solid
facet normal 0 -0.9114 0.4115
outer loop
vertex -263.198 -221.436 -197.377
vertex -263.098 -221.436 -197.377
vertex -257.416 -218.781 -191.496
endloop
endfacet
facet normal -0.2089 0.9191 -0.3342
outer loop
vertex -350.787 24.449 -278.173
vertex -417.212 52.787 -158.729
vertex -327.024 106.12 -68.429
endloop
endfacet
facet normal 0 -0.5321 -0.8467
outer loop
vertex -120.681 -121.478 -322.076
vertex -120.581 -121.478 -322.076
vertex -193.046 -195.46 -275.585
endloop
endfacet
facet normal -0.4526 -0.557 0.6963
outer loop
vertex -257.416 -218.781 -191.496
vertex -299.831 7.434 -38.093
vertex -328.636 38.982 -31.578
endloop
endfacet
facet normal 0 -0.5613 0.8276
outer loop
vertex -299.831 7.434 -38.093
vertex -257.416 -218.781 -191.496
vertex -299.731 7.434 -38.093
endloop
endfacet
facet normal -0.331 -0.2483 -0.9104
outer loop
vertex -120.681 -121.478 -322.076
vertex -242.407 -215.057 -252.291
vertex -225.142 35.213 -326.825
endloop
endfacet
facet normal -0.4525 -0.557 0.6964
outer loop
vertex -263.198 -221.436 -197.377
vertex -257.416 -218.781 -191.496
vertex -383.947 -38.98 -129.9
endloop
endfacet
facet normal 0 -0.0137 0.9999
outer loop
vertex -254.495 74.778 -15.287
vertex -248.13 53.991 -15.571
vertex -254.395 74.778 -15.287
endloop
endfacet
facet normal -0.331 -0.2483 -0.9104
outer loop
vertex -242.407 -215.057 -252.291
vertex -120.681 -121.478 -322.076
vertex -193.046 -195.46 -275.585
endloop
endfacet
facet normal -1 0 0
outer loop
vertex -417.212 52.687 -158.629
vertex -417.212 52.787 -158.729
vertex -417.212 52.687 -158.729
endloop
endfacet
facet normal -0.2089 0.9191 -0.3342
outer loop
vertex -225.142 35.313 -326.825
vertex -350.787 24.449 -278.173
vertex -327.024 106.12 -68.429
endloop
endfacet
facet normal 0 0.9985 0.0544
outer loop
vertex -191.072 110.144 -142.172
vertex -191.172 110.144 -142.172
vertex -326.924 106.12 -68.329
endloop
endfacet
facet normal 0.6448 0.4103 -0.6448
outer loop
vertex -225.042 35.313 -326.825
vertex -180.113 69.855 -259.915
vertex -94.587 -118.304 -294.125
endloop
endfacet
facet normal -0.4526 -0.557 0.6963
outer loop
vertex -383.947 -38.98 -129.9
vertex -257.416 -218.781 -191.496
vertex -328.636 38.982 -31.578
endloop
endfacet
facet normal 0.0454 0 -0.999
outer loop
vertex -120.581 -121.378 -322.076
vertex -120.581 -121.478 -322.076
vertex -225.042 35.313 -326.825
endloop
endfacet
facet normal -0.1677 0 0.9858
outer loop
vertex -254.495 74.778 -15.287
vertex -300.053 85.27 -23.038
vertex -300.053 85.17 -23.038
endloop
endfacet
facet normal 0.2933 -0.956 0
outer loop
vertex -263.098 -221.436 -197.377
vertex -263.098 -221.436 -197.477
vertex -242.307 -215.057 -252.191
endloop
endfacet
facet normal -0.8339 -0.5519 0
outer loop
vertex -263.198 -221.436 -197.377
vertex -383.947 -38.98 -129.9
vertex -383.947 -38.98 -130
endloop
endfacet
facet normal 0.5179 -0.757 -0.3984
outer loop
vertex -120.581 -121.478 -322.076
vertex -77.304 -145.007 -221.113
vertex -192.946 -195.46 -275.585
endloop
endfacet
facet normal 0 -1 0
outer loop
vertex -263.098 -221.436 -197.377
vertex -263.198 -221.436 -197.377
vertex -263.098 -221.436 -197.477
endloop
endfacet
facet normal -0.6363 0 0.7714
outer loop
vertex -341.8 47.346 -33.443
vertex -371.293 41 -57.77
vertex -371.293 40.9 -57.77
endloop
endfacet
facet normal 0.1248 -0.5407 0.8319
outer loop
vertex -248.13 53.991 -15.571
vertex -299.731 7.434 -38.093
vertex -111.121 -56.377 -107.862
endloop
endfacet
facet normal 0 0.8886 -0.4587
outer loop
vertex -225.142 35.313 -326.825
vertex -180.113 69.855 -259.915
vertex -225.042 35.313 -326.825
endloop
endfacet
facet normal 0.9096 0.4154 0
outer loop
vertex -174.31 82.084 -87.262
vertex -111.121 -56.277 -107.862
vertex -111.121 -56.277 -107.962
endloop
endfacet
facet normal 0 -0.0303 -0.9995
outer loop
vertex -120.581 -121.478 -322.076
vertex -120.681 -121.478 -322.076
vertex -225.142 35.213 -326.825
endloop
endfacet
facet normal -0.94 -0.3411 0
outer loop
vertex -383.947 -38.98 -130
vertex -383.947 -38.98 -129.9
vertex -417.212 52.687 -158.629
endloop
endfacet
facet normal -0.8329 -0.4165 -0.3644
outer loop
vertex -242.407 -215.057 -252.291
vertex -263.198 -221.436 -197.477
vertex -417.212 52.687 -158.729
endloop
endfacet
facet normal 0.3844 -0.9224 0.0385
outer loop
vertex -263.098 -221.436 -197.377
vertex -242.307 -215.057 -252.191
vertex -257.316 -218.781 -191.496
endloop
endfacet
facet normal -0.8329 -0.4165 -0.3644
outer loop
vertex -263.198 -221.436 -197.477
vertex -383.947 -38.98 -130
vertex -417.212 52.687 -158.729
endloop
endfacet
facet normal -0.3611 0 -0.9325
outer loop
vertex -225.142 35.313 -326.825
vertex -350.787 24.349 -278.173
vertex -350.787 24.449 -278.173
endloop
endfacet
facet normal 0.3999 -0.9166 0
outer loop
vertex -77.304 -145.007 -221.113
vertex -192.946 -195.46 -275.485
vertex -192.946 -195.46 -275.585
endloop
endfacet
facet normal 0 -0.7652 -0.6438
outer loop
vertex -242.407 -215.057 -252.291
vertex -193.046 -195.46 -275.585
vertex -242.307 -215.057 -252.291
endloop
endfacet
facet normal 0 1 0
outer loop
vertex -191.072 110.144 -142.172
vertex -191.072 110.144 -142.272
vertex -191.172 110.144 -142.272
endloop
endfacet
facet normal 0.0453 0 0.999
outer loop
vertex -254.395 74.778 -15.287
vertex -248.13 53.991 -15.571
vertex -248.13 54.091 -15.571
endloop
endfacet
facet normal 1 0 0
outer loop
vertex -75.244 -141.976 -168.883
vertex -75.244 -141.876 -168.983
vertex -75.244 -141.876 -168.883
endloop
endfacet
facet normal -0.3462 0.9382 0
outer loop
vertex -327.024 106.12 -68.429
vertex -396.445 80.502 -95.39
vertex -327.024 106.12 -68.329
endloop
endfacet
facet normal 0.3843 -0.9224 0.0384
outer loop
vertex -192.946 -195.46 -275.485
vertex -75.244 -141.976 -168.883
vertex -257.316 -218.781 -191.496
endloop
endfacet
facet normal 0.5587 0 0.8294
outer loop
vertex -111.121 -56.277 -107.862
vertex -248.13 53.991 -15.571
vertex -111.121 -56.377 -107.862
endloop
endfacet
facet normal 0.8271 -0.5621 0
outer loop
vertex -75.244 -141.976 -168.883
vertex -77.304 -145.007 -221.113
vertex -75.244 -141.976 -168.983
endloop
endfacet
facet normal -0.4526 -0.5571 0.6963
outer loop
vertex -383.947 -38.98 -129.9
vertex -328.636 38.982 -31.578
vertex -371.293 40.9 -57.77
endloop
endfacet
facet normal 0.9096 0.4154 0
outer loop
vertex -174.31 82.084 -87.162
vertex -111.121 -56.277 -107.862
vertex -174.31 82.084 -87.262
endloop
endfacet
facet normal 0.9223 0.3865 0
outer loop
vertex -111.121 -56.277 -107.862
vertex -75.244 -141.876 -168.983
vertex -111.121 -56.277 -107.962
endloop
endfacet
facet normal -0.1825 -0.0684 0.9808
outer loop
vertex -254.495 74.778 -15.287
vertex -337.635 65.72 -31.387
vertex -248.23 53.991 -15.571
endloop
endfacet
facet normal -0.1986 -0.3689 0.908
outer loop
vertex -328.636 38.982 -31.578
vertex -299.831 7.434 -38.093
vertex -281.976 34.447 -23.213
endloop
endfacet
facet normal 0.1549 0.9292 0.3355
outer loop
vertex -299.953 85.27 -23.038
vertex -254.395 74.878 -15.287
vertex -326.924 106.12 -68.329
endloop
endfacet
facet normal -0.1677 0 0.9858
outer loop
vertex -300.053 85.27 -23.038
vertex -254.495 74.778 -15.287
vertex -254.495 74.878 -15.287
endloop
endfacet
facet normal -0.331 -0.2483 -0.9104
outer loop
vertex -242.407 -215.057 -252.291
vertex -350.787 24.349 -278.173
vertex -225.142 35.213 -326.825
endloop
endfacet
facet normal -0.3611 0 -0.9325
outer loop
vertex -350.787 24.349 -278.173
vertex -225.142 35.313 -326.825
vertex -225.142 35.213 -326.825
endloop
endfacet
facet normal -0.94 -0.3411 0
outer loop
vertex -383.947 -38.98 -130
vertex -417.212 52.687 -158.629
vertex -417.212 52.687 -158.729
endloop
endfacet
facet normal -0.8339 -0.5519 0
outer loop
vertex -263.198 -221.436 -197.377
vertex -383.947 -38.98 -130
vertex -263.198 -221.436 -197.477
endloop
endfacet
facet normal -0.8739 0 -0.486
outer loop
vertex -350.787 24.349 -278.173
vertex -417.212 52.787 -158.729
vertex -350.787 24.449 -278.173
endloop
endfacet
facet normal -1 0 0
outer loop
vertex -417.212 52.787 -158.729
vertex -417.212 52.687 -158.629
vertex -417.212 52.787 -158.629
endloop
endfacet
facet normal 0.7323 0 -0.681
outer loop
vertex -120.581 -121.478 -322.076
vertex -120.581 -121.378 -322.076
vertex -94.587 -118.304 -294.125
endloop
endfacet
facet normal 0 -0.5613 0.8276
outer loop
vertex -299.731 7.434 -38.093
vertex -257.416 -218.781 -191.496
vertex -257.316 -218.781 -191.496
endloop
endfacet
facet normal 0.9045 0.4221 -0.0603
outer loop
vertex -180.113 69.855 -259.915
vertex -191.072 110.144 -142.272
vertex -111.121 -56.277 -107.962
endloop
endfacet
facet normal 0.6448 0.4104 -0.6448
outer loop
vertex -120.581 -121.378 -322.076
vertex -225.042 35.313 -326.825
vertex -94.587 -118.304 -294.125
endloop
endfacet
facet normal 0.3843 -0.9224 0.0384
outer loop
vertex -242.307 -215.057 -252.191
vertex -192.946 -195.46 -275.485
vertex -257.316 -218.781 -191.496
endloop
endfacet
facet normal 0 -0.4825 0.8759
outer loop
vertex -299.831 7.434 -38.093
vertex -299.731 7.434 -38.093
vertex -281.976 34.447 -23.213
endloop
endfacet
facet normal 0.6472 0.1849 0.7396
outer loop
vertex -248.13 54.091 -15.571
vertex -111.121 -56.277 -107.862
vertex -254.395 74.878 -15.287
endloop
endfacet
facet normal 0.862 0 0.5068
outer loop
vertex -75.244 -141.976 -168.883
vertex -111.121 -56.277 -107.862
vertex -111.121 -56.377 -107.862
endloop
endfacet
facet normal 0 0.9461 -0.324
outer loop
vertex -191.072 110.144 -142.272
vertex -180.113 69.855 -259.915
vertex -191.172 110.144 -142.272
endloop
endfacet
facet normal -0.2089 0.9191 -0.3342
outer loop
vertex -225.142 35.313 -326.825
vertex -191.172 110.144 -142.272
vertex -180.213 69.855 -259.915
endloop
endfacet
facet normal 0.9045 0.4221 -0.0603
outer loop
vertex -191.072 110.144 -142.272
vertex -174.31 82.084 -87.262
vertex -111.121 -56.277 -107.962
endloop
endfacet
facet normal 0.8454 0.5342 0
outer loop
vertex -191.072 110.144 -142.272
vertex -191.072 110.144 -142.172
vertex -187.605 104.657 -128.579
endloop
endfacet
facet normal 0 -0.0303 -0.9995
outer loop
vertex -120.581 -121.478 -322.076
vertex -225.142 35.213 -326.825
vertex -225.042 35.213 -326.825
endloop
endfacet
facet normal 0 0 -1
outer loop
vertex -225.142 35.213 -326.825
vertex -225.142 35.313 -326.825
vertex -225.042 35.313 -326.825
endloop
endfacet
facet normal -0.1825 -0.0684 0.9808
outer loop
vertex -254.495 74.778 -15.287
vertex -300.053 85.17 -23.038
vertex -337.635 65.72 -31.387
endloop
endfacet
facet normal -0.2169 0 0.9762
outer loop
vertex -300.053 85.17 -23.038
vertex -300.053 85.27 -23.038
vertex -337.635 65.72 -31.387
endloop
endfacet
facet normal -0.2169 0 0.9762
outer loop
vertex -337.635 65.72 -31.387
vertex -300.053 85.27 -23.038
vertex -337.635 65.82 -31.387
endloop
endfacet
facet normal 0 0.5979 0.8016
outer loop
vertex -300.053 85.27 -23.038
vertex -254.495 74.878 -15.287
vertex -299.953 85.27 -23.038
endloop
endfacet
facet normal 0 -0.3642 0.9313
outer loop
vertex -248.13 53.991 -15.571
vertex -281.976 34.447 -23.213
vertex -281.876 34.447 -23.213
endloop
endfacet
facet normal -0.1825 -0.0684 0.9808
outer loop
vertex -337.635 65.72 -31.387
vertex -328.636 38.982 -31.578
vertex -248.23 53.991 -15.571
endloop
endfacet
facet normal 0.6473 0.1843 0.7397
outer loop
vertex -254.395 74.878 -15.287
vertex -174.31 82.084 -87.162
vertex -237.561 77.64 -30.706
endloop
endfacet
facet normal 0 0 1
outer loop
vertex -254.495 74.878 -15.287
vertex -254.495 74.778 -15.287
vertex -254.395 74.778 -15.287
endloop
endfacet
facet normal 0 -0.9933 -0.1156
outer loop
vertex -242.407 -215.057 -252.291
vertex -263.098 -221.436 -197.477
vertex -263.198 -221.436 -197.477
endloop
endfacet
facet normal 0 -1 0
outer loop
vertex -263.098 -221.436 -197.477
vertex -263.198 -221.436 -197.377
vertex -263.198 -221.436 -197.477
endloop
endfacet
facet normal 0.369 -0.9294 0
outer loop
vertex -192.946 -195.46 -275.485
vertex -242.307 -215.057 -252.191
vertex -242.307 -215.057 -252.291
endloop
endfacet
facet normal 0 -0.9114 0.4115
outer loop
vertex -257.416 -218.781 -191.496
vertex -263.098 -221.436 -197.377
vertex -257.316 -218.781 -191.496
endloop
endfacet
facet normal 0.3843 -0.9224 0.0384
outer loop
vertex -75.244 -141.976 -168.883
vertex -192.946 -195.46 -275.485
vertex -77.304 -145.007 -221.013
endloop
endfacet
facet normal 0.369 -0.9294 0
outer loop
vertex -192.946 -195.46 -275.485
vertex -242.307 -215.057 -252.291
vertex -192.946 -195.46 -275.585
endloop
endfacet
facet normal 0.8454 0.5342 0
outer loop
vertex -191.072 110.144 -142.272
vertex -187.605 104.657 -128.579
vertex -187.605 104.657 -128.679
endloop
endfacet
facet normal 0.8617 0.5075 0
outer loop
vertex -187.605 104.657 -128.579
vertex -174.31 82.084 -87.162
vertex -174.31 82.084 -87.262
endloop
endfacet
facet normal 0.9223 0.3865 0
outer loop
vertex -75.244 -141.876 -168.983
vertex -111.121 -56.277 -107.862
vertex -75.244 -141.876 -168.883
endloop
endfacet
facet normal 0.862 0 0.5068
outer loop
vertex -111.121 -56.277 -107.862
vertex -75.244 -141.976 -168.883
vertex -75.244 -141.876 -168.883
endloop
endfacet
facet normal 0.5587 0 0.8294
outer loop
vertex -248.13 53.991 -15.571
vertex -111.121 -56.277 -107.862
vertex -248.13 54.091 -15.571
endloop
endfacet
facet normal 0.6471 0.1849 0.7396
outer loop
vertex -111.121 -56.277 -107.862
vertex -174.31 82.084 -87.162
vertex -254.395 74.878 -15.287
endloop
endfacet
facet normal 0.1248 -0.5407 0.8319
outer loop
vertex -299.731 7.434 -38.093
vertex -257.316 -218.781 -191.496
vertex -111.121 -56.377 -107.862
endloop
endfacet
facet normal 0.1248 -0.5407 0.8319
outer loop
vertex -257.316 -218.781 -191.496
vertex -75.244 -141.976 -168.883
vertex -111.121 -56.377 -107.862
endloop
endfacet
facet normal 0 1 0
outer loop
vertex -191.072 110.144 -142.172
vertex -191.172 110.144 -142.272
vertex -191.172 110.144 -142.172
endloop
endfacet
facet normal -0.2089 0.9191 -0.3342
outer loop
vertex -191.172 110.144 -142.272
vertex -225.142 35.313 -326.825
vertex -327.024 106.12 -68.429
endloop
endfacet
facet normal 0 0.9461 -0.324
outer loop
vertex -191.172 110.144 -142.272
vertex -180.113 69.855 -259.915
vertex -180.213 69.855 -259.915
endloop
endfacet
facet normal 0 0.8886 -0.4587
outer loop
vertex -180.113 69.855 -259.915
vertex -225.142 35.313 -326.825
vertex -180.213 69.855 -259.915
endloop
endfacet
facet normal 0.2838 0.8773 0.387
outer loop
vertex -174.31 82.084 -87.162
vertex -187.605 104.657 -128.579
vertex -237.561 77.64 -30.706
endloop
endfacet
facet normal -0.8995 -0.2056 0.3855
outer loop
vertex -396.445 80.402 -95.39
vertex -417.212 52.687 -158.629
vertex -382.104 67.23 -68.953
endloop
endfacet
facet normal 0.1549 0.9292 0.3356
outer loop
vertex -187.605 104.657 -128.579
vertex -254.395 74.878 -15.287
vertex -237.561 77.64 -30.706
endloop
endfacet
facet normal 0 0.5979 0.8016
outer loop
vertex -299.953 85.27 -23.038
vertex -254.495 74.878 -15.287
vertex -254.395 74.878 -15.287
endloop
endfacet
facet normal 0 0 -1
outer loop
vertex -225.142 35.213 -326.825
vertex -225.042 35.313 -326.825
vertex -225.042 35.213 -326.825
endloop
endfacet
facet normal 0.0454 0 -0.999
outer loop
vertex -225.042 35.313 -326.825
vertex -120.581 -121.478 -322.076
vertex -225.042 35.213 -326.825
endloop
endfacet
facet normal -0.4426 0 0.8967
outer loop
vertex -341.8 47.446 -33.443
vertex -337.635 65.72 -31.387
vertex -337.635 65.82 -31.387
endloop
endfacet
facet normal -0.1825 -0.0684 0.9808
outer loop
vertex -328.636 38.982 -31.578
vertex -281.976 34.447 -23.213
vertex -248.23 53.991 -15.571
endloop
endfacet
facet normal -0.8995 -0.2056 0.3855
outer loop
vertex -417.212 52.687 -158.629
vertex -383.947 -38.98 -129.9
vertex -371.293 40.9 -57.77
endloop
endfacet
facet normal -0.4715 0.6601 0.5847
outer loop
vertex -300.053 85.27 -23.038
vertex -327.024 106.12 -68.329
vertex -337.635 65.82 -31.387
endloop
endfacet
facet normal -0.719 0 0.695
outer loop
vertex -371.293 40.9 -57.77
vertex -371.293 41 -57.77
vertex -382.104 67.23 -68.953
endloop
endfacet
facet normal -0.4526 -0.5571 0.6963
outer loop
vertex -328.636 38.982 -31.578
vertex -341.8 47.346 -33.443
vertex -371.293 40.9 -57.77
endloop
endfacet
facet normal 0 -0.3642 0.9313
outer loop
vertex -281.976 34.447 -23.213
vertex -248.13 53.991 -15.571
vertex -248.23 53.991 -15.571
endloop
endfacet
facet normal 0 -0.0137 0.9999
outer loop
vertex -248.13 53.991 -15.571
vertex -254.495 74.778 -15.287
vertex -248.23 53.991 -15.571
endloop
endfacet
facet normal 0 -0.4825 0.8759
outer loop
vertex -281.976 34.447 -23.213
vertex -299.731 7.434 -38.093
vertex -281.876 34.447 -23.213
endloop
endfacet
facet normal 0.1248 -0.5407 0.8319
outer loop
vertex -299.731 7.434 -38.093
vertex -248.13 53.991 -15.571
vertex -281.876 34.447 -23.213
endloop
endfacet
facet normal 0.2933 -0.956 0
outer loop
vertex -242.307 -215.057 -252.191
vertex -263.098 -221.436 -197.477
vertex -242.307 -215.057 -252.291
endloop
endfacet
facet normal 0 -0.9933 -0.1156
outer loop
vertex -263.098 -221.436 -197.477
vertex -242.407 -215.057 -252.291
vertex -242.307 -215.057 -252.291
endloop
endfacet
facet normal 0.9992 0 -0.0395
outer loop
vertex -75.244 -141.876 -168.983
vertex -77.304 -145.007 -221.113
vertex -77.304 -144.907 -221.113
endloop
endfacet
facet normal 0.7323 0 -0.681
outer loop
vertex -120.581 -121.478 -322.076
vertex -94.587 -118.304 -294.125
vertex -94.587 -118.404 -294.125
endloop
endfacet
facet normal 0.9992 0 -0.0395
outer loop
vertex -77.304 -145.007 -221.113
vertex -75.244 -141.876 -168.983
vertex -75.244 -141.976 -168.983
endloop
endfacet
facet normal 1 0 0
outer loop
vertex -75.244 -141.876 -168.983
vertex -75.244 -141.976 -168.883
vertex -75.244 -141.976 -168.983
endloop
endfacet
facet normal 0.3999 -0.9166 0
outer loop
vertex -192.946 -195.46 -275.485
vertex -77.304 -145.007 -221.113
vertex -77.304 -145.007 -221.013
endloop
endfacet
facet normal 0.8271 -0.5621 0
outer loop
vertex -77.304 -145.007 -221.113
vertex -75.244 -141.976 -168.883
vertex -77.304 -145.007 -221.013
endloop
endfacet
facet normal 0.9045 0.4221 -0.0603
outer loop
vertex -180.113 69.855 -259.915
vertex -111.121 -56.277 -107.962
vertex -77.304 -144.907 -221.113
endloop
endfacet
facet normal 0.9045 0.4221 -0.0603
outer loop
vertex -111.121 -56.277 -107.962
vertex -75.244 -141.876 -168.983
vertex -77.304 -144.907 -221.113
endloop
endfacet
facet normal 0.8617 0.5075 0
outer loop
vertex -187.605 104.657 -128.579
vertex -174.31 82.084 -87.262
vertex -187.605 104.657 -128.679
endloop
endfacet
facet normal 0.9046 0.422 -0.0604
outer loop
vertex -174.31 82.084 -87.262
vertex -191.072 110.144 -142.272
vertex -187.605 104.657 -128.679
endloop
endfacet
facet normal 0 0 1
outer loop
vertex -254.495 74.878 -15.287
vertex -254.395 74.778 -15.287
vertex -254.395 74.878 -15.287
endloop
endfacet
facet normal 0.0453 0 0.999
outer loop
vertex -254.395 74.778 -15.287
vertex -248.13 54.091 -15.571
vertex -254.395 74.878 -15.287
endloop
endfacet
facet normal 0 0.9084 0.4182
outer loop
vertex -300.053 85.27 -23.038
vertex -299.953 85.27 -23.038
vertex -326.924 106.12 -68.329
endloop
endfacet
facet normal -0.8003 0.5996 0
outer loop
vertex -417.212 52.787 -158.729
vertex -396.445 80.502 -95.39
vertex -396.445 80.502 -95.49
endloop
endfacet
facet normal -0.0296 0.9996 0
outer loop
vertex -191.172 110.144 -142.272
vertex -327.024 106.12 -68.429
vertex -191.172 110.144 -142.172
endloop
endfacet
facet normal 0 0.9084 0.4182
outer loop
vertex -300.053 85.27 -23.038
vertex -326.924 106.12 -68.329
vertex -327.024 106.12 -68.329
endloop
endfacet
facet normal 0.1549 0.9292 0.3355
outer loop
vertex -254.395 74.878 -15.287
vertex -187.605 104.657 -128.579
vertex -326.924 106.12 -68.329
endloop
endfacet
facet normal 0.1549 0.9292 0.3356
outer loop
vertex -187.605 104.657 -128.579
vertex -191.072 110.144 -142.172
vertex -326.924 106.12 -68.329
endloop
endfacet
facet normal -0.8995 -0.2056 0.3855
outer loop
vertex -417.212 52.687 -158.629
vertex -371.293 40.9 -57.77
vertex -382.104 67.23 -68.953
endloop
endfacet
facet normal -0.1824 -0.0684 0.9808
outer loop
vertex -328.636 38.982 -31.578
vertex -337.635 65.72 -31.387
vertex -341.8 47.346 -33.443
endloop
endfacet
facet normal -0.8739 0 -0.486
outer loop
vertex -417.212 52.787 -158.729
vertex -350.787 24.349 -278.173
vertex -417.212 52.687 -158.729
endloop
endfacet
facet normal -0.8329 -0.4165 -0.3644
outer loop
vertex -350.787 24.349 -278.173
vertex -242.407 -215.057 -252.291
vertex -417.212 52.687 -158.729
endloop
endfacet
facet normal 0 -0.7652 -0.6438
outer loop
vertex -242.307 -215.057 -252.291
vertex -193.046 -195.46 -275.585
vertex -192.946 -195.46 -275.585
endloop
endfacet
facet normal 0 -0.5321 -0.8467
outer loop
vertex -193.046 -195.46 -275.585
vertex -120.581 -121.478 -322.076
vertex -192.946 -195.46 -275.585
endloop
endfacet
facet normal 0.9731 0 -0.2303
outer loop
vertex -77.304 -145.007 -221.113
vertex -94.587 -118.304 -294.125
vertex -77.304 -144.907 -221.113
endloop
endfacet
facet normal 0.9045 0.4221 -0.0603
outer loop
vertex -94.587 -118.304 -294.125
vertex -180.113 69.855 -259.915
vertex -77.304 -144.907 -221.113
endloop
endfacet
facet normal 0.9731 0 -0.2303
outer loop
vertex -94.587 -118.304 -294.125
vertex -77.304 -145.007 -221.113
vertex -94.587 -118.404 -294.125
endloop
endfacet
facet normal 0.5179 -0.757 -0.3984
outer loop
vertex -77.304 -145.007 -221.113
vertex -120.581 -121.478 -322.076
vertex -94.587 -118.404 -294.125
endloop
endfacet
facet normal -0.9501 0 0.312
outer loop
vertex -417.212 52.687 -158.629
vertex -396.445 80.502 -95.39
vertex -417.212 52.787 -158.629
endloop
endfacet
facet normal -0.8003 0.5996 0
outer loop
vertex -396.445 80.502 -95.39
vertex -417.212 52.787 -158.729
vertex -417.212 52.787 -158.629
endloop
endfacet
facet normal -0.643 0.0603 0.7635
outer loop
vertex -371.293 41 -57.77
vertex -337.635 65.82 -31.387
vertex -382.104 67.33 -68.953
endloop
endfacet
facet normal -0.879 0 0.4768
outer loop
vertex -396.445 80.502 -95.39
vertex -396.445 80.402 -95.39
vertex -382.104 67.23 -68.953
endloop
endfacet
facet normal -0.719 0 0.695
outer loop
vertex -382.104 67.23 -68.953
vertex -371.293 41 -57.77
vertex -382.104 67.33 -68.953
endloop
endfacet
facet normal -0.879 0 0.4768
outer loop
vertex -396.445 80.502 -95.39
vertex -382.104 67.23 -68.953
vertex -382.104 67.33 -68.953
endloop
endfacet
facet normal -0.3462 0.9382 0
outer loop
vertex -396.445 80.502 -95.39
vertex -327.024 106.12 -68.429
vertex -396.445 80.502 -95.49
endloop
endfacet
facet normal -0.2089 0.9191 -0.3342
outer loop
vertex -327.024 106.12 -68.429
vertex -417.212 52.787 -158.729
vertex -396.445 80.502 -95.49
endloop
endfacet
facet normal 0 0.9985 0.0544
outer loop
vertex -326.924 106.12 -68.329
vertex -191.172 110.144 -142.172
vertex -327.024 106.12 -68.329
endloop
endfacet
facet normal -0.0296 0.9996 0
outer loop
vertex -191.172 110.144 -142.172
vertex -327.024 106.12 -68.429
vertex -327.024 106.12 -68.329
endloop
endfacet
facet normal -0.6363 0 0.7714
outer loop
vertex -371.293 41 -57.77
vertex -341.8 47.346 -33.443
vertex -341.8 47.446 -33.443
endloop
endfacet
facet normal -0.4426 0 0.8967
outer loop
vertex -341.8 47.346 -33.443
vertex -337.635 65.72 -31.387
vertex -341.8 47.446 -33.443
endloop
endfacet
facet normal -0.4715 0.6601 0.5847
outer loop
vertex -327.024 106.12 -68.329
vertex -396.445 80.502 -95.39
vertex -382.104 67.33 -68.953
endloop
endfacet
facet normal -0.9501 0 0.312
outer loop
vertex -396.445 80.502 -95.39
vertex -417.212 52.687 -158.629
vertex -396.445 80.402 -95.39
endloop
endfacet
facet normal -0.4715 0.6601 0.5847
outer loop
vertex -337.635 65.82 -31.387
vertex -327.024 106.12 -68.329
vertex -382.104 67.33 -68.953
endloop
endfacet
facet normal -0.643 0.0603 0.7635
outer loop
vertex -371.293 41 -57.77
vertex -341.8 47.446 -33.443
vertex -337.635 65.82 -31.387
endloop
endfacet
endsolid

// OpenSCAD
hull(){ translate([-263.198198198,-221.435810811,-197.477477477])cube(0.1,0.1,0.1);
translate([-174.409836066,81.9836065574,-87.262295082])cube(0.1,0.1,0.1);
translate([-337.635290772,65.7200341248,-31.4865633442])cube(0.1,0.1,0.1);
translate([-328.63561418,38.9818631492,-31.6776586974])cube(0.1,0.1,0.1);
translate([-341.800290324,47.3460443303,-33.5433532466])cube(0.1,0.1,0.1);
translate([-300.053098351,85.169641842,-23.1375781694])cube(0.1,0.1,0.1);
translate([-237.661290323,77.5403225806,-30.8064516129])cube(0.1,0.1,0.1);
translate([-254.49461937,74.7776006377,-15.3866082104])cube(0.1,0.1,0.1);
translate([-187.705361535,104.557304476,-128.679291687])cube(0.1,0.1,0.1);
translate([-383.947368421,-38.9802631579,-130.0])cube(0.1,0.1,0.1);
translate([-371.293066388,40.9000184241,-57.8704784131])cube(0.1,0.1,0.1);
translate([-382.103797097,67.229878317,-69.0529247911])cube(0.1,0.1,0.1);
translate([-242.406795658,-215.056630486,-252.291175083])cube(0.1,0.1,0.1);
translate([-257.415974203,-218.781470917,-191.595559965])cube(0.1,0.1,0.1);
translate([-299.831460674,7.43445692884,-38.1928838951])cube(0.1,0.1,0.1);
translate([-111.221453287,-56.3771626298,-107.961937716])cube(0.1,0.1,0.1);
translate([-75.343502282,-141.97573865,-168.98270478])cube(0.1,0.1,0.1);
translate([-248.230150754,53.9909547739,-15.6713567839])cube(0.1,0.1,0.1);
translate([-281.97578426,34.4468904788,-23.3131535498])cube(0.1,0.1,0.1);
translate([-225.142180095,35.2132701422,-326.82464455])cube(0.1,0.1,0.1);
translate([-350.786501748,24.3492874429,-278.17289594])cube(0.1,0.1,0.1);
translate([-180.213431986,69.7552646557,-259.914627205])cube(0.1,0.1,0.1);
translate([-191.171883641,110.043689857,-142.272425617])cube(0.1,0.1,0.1);
translate([-327.024160157,106.020190379,-68.4293763606])cube(0.1,0.1,0.1);
translate([-417.21212596,52.6868243773,-158.728654238])cube(0.1,0.1,0.1);
translate([-396.445038044,80.4022988506,-95.4905293832])cube(0.1,0.1,0.1);
translate([-77.4044795784,-145.006587615,-221.113306983])cube(0.1,0.1,0.1);
translate([-94.6865889213,-118.403790087,-294.125364431])cube(0.1,0.1,0.1);
translate([-193.045638572,-195.46006625,-275.585204269])cube(0.1,0.1,0.1);
translate([-120.681063123,-121.478405316,-322.07641196])cube(0.1,0.1,0.1); }
